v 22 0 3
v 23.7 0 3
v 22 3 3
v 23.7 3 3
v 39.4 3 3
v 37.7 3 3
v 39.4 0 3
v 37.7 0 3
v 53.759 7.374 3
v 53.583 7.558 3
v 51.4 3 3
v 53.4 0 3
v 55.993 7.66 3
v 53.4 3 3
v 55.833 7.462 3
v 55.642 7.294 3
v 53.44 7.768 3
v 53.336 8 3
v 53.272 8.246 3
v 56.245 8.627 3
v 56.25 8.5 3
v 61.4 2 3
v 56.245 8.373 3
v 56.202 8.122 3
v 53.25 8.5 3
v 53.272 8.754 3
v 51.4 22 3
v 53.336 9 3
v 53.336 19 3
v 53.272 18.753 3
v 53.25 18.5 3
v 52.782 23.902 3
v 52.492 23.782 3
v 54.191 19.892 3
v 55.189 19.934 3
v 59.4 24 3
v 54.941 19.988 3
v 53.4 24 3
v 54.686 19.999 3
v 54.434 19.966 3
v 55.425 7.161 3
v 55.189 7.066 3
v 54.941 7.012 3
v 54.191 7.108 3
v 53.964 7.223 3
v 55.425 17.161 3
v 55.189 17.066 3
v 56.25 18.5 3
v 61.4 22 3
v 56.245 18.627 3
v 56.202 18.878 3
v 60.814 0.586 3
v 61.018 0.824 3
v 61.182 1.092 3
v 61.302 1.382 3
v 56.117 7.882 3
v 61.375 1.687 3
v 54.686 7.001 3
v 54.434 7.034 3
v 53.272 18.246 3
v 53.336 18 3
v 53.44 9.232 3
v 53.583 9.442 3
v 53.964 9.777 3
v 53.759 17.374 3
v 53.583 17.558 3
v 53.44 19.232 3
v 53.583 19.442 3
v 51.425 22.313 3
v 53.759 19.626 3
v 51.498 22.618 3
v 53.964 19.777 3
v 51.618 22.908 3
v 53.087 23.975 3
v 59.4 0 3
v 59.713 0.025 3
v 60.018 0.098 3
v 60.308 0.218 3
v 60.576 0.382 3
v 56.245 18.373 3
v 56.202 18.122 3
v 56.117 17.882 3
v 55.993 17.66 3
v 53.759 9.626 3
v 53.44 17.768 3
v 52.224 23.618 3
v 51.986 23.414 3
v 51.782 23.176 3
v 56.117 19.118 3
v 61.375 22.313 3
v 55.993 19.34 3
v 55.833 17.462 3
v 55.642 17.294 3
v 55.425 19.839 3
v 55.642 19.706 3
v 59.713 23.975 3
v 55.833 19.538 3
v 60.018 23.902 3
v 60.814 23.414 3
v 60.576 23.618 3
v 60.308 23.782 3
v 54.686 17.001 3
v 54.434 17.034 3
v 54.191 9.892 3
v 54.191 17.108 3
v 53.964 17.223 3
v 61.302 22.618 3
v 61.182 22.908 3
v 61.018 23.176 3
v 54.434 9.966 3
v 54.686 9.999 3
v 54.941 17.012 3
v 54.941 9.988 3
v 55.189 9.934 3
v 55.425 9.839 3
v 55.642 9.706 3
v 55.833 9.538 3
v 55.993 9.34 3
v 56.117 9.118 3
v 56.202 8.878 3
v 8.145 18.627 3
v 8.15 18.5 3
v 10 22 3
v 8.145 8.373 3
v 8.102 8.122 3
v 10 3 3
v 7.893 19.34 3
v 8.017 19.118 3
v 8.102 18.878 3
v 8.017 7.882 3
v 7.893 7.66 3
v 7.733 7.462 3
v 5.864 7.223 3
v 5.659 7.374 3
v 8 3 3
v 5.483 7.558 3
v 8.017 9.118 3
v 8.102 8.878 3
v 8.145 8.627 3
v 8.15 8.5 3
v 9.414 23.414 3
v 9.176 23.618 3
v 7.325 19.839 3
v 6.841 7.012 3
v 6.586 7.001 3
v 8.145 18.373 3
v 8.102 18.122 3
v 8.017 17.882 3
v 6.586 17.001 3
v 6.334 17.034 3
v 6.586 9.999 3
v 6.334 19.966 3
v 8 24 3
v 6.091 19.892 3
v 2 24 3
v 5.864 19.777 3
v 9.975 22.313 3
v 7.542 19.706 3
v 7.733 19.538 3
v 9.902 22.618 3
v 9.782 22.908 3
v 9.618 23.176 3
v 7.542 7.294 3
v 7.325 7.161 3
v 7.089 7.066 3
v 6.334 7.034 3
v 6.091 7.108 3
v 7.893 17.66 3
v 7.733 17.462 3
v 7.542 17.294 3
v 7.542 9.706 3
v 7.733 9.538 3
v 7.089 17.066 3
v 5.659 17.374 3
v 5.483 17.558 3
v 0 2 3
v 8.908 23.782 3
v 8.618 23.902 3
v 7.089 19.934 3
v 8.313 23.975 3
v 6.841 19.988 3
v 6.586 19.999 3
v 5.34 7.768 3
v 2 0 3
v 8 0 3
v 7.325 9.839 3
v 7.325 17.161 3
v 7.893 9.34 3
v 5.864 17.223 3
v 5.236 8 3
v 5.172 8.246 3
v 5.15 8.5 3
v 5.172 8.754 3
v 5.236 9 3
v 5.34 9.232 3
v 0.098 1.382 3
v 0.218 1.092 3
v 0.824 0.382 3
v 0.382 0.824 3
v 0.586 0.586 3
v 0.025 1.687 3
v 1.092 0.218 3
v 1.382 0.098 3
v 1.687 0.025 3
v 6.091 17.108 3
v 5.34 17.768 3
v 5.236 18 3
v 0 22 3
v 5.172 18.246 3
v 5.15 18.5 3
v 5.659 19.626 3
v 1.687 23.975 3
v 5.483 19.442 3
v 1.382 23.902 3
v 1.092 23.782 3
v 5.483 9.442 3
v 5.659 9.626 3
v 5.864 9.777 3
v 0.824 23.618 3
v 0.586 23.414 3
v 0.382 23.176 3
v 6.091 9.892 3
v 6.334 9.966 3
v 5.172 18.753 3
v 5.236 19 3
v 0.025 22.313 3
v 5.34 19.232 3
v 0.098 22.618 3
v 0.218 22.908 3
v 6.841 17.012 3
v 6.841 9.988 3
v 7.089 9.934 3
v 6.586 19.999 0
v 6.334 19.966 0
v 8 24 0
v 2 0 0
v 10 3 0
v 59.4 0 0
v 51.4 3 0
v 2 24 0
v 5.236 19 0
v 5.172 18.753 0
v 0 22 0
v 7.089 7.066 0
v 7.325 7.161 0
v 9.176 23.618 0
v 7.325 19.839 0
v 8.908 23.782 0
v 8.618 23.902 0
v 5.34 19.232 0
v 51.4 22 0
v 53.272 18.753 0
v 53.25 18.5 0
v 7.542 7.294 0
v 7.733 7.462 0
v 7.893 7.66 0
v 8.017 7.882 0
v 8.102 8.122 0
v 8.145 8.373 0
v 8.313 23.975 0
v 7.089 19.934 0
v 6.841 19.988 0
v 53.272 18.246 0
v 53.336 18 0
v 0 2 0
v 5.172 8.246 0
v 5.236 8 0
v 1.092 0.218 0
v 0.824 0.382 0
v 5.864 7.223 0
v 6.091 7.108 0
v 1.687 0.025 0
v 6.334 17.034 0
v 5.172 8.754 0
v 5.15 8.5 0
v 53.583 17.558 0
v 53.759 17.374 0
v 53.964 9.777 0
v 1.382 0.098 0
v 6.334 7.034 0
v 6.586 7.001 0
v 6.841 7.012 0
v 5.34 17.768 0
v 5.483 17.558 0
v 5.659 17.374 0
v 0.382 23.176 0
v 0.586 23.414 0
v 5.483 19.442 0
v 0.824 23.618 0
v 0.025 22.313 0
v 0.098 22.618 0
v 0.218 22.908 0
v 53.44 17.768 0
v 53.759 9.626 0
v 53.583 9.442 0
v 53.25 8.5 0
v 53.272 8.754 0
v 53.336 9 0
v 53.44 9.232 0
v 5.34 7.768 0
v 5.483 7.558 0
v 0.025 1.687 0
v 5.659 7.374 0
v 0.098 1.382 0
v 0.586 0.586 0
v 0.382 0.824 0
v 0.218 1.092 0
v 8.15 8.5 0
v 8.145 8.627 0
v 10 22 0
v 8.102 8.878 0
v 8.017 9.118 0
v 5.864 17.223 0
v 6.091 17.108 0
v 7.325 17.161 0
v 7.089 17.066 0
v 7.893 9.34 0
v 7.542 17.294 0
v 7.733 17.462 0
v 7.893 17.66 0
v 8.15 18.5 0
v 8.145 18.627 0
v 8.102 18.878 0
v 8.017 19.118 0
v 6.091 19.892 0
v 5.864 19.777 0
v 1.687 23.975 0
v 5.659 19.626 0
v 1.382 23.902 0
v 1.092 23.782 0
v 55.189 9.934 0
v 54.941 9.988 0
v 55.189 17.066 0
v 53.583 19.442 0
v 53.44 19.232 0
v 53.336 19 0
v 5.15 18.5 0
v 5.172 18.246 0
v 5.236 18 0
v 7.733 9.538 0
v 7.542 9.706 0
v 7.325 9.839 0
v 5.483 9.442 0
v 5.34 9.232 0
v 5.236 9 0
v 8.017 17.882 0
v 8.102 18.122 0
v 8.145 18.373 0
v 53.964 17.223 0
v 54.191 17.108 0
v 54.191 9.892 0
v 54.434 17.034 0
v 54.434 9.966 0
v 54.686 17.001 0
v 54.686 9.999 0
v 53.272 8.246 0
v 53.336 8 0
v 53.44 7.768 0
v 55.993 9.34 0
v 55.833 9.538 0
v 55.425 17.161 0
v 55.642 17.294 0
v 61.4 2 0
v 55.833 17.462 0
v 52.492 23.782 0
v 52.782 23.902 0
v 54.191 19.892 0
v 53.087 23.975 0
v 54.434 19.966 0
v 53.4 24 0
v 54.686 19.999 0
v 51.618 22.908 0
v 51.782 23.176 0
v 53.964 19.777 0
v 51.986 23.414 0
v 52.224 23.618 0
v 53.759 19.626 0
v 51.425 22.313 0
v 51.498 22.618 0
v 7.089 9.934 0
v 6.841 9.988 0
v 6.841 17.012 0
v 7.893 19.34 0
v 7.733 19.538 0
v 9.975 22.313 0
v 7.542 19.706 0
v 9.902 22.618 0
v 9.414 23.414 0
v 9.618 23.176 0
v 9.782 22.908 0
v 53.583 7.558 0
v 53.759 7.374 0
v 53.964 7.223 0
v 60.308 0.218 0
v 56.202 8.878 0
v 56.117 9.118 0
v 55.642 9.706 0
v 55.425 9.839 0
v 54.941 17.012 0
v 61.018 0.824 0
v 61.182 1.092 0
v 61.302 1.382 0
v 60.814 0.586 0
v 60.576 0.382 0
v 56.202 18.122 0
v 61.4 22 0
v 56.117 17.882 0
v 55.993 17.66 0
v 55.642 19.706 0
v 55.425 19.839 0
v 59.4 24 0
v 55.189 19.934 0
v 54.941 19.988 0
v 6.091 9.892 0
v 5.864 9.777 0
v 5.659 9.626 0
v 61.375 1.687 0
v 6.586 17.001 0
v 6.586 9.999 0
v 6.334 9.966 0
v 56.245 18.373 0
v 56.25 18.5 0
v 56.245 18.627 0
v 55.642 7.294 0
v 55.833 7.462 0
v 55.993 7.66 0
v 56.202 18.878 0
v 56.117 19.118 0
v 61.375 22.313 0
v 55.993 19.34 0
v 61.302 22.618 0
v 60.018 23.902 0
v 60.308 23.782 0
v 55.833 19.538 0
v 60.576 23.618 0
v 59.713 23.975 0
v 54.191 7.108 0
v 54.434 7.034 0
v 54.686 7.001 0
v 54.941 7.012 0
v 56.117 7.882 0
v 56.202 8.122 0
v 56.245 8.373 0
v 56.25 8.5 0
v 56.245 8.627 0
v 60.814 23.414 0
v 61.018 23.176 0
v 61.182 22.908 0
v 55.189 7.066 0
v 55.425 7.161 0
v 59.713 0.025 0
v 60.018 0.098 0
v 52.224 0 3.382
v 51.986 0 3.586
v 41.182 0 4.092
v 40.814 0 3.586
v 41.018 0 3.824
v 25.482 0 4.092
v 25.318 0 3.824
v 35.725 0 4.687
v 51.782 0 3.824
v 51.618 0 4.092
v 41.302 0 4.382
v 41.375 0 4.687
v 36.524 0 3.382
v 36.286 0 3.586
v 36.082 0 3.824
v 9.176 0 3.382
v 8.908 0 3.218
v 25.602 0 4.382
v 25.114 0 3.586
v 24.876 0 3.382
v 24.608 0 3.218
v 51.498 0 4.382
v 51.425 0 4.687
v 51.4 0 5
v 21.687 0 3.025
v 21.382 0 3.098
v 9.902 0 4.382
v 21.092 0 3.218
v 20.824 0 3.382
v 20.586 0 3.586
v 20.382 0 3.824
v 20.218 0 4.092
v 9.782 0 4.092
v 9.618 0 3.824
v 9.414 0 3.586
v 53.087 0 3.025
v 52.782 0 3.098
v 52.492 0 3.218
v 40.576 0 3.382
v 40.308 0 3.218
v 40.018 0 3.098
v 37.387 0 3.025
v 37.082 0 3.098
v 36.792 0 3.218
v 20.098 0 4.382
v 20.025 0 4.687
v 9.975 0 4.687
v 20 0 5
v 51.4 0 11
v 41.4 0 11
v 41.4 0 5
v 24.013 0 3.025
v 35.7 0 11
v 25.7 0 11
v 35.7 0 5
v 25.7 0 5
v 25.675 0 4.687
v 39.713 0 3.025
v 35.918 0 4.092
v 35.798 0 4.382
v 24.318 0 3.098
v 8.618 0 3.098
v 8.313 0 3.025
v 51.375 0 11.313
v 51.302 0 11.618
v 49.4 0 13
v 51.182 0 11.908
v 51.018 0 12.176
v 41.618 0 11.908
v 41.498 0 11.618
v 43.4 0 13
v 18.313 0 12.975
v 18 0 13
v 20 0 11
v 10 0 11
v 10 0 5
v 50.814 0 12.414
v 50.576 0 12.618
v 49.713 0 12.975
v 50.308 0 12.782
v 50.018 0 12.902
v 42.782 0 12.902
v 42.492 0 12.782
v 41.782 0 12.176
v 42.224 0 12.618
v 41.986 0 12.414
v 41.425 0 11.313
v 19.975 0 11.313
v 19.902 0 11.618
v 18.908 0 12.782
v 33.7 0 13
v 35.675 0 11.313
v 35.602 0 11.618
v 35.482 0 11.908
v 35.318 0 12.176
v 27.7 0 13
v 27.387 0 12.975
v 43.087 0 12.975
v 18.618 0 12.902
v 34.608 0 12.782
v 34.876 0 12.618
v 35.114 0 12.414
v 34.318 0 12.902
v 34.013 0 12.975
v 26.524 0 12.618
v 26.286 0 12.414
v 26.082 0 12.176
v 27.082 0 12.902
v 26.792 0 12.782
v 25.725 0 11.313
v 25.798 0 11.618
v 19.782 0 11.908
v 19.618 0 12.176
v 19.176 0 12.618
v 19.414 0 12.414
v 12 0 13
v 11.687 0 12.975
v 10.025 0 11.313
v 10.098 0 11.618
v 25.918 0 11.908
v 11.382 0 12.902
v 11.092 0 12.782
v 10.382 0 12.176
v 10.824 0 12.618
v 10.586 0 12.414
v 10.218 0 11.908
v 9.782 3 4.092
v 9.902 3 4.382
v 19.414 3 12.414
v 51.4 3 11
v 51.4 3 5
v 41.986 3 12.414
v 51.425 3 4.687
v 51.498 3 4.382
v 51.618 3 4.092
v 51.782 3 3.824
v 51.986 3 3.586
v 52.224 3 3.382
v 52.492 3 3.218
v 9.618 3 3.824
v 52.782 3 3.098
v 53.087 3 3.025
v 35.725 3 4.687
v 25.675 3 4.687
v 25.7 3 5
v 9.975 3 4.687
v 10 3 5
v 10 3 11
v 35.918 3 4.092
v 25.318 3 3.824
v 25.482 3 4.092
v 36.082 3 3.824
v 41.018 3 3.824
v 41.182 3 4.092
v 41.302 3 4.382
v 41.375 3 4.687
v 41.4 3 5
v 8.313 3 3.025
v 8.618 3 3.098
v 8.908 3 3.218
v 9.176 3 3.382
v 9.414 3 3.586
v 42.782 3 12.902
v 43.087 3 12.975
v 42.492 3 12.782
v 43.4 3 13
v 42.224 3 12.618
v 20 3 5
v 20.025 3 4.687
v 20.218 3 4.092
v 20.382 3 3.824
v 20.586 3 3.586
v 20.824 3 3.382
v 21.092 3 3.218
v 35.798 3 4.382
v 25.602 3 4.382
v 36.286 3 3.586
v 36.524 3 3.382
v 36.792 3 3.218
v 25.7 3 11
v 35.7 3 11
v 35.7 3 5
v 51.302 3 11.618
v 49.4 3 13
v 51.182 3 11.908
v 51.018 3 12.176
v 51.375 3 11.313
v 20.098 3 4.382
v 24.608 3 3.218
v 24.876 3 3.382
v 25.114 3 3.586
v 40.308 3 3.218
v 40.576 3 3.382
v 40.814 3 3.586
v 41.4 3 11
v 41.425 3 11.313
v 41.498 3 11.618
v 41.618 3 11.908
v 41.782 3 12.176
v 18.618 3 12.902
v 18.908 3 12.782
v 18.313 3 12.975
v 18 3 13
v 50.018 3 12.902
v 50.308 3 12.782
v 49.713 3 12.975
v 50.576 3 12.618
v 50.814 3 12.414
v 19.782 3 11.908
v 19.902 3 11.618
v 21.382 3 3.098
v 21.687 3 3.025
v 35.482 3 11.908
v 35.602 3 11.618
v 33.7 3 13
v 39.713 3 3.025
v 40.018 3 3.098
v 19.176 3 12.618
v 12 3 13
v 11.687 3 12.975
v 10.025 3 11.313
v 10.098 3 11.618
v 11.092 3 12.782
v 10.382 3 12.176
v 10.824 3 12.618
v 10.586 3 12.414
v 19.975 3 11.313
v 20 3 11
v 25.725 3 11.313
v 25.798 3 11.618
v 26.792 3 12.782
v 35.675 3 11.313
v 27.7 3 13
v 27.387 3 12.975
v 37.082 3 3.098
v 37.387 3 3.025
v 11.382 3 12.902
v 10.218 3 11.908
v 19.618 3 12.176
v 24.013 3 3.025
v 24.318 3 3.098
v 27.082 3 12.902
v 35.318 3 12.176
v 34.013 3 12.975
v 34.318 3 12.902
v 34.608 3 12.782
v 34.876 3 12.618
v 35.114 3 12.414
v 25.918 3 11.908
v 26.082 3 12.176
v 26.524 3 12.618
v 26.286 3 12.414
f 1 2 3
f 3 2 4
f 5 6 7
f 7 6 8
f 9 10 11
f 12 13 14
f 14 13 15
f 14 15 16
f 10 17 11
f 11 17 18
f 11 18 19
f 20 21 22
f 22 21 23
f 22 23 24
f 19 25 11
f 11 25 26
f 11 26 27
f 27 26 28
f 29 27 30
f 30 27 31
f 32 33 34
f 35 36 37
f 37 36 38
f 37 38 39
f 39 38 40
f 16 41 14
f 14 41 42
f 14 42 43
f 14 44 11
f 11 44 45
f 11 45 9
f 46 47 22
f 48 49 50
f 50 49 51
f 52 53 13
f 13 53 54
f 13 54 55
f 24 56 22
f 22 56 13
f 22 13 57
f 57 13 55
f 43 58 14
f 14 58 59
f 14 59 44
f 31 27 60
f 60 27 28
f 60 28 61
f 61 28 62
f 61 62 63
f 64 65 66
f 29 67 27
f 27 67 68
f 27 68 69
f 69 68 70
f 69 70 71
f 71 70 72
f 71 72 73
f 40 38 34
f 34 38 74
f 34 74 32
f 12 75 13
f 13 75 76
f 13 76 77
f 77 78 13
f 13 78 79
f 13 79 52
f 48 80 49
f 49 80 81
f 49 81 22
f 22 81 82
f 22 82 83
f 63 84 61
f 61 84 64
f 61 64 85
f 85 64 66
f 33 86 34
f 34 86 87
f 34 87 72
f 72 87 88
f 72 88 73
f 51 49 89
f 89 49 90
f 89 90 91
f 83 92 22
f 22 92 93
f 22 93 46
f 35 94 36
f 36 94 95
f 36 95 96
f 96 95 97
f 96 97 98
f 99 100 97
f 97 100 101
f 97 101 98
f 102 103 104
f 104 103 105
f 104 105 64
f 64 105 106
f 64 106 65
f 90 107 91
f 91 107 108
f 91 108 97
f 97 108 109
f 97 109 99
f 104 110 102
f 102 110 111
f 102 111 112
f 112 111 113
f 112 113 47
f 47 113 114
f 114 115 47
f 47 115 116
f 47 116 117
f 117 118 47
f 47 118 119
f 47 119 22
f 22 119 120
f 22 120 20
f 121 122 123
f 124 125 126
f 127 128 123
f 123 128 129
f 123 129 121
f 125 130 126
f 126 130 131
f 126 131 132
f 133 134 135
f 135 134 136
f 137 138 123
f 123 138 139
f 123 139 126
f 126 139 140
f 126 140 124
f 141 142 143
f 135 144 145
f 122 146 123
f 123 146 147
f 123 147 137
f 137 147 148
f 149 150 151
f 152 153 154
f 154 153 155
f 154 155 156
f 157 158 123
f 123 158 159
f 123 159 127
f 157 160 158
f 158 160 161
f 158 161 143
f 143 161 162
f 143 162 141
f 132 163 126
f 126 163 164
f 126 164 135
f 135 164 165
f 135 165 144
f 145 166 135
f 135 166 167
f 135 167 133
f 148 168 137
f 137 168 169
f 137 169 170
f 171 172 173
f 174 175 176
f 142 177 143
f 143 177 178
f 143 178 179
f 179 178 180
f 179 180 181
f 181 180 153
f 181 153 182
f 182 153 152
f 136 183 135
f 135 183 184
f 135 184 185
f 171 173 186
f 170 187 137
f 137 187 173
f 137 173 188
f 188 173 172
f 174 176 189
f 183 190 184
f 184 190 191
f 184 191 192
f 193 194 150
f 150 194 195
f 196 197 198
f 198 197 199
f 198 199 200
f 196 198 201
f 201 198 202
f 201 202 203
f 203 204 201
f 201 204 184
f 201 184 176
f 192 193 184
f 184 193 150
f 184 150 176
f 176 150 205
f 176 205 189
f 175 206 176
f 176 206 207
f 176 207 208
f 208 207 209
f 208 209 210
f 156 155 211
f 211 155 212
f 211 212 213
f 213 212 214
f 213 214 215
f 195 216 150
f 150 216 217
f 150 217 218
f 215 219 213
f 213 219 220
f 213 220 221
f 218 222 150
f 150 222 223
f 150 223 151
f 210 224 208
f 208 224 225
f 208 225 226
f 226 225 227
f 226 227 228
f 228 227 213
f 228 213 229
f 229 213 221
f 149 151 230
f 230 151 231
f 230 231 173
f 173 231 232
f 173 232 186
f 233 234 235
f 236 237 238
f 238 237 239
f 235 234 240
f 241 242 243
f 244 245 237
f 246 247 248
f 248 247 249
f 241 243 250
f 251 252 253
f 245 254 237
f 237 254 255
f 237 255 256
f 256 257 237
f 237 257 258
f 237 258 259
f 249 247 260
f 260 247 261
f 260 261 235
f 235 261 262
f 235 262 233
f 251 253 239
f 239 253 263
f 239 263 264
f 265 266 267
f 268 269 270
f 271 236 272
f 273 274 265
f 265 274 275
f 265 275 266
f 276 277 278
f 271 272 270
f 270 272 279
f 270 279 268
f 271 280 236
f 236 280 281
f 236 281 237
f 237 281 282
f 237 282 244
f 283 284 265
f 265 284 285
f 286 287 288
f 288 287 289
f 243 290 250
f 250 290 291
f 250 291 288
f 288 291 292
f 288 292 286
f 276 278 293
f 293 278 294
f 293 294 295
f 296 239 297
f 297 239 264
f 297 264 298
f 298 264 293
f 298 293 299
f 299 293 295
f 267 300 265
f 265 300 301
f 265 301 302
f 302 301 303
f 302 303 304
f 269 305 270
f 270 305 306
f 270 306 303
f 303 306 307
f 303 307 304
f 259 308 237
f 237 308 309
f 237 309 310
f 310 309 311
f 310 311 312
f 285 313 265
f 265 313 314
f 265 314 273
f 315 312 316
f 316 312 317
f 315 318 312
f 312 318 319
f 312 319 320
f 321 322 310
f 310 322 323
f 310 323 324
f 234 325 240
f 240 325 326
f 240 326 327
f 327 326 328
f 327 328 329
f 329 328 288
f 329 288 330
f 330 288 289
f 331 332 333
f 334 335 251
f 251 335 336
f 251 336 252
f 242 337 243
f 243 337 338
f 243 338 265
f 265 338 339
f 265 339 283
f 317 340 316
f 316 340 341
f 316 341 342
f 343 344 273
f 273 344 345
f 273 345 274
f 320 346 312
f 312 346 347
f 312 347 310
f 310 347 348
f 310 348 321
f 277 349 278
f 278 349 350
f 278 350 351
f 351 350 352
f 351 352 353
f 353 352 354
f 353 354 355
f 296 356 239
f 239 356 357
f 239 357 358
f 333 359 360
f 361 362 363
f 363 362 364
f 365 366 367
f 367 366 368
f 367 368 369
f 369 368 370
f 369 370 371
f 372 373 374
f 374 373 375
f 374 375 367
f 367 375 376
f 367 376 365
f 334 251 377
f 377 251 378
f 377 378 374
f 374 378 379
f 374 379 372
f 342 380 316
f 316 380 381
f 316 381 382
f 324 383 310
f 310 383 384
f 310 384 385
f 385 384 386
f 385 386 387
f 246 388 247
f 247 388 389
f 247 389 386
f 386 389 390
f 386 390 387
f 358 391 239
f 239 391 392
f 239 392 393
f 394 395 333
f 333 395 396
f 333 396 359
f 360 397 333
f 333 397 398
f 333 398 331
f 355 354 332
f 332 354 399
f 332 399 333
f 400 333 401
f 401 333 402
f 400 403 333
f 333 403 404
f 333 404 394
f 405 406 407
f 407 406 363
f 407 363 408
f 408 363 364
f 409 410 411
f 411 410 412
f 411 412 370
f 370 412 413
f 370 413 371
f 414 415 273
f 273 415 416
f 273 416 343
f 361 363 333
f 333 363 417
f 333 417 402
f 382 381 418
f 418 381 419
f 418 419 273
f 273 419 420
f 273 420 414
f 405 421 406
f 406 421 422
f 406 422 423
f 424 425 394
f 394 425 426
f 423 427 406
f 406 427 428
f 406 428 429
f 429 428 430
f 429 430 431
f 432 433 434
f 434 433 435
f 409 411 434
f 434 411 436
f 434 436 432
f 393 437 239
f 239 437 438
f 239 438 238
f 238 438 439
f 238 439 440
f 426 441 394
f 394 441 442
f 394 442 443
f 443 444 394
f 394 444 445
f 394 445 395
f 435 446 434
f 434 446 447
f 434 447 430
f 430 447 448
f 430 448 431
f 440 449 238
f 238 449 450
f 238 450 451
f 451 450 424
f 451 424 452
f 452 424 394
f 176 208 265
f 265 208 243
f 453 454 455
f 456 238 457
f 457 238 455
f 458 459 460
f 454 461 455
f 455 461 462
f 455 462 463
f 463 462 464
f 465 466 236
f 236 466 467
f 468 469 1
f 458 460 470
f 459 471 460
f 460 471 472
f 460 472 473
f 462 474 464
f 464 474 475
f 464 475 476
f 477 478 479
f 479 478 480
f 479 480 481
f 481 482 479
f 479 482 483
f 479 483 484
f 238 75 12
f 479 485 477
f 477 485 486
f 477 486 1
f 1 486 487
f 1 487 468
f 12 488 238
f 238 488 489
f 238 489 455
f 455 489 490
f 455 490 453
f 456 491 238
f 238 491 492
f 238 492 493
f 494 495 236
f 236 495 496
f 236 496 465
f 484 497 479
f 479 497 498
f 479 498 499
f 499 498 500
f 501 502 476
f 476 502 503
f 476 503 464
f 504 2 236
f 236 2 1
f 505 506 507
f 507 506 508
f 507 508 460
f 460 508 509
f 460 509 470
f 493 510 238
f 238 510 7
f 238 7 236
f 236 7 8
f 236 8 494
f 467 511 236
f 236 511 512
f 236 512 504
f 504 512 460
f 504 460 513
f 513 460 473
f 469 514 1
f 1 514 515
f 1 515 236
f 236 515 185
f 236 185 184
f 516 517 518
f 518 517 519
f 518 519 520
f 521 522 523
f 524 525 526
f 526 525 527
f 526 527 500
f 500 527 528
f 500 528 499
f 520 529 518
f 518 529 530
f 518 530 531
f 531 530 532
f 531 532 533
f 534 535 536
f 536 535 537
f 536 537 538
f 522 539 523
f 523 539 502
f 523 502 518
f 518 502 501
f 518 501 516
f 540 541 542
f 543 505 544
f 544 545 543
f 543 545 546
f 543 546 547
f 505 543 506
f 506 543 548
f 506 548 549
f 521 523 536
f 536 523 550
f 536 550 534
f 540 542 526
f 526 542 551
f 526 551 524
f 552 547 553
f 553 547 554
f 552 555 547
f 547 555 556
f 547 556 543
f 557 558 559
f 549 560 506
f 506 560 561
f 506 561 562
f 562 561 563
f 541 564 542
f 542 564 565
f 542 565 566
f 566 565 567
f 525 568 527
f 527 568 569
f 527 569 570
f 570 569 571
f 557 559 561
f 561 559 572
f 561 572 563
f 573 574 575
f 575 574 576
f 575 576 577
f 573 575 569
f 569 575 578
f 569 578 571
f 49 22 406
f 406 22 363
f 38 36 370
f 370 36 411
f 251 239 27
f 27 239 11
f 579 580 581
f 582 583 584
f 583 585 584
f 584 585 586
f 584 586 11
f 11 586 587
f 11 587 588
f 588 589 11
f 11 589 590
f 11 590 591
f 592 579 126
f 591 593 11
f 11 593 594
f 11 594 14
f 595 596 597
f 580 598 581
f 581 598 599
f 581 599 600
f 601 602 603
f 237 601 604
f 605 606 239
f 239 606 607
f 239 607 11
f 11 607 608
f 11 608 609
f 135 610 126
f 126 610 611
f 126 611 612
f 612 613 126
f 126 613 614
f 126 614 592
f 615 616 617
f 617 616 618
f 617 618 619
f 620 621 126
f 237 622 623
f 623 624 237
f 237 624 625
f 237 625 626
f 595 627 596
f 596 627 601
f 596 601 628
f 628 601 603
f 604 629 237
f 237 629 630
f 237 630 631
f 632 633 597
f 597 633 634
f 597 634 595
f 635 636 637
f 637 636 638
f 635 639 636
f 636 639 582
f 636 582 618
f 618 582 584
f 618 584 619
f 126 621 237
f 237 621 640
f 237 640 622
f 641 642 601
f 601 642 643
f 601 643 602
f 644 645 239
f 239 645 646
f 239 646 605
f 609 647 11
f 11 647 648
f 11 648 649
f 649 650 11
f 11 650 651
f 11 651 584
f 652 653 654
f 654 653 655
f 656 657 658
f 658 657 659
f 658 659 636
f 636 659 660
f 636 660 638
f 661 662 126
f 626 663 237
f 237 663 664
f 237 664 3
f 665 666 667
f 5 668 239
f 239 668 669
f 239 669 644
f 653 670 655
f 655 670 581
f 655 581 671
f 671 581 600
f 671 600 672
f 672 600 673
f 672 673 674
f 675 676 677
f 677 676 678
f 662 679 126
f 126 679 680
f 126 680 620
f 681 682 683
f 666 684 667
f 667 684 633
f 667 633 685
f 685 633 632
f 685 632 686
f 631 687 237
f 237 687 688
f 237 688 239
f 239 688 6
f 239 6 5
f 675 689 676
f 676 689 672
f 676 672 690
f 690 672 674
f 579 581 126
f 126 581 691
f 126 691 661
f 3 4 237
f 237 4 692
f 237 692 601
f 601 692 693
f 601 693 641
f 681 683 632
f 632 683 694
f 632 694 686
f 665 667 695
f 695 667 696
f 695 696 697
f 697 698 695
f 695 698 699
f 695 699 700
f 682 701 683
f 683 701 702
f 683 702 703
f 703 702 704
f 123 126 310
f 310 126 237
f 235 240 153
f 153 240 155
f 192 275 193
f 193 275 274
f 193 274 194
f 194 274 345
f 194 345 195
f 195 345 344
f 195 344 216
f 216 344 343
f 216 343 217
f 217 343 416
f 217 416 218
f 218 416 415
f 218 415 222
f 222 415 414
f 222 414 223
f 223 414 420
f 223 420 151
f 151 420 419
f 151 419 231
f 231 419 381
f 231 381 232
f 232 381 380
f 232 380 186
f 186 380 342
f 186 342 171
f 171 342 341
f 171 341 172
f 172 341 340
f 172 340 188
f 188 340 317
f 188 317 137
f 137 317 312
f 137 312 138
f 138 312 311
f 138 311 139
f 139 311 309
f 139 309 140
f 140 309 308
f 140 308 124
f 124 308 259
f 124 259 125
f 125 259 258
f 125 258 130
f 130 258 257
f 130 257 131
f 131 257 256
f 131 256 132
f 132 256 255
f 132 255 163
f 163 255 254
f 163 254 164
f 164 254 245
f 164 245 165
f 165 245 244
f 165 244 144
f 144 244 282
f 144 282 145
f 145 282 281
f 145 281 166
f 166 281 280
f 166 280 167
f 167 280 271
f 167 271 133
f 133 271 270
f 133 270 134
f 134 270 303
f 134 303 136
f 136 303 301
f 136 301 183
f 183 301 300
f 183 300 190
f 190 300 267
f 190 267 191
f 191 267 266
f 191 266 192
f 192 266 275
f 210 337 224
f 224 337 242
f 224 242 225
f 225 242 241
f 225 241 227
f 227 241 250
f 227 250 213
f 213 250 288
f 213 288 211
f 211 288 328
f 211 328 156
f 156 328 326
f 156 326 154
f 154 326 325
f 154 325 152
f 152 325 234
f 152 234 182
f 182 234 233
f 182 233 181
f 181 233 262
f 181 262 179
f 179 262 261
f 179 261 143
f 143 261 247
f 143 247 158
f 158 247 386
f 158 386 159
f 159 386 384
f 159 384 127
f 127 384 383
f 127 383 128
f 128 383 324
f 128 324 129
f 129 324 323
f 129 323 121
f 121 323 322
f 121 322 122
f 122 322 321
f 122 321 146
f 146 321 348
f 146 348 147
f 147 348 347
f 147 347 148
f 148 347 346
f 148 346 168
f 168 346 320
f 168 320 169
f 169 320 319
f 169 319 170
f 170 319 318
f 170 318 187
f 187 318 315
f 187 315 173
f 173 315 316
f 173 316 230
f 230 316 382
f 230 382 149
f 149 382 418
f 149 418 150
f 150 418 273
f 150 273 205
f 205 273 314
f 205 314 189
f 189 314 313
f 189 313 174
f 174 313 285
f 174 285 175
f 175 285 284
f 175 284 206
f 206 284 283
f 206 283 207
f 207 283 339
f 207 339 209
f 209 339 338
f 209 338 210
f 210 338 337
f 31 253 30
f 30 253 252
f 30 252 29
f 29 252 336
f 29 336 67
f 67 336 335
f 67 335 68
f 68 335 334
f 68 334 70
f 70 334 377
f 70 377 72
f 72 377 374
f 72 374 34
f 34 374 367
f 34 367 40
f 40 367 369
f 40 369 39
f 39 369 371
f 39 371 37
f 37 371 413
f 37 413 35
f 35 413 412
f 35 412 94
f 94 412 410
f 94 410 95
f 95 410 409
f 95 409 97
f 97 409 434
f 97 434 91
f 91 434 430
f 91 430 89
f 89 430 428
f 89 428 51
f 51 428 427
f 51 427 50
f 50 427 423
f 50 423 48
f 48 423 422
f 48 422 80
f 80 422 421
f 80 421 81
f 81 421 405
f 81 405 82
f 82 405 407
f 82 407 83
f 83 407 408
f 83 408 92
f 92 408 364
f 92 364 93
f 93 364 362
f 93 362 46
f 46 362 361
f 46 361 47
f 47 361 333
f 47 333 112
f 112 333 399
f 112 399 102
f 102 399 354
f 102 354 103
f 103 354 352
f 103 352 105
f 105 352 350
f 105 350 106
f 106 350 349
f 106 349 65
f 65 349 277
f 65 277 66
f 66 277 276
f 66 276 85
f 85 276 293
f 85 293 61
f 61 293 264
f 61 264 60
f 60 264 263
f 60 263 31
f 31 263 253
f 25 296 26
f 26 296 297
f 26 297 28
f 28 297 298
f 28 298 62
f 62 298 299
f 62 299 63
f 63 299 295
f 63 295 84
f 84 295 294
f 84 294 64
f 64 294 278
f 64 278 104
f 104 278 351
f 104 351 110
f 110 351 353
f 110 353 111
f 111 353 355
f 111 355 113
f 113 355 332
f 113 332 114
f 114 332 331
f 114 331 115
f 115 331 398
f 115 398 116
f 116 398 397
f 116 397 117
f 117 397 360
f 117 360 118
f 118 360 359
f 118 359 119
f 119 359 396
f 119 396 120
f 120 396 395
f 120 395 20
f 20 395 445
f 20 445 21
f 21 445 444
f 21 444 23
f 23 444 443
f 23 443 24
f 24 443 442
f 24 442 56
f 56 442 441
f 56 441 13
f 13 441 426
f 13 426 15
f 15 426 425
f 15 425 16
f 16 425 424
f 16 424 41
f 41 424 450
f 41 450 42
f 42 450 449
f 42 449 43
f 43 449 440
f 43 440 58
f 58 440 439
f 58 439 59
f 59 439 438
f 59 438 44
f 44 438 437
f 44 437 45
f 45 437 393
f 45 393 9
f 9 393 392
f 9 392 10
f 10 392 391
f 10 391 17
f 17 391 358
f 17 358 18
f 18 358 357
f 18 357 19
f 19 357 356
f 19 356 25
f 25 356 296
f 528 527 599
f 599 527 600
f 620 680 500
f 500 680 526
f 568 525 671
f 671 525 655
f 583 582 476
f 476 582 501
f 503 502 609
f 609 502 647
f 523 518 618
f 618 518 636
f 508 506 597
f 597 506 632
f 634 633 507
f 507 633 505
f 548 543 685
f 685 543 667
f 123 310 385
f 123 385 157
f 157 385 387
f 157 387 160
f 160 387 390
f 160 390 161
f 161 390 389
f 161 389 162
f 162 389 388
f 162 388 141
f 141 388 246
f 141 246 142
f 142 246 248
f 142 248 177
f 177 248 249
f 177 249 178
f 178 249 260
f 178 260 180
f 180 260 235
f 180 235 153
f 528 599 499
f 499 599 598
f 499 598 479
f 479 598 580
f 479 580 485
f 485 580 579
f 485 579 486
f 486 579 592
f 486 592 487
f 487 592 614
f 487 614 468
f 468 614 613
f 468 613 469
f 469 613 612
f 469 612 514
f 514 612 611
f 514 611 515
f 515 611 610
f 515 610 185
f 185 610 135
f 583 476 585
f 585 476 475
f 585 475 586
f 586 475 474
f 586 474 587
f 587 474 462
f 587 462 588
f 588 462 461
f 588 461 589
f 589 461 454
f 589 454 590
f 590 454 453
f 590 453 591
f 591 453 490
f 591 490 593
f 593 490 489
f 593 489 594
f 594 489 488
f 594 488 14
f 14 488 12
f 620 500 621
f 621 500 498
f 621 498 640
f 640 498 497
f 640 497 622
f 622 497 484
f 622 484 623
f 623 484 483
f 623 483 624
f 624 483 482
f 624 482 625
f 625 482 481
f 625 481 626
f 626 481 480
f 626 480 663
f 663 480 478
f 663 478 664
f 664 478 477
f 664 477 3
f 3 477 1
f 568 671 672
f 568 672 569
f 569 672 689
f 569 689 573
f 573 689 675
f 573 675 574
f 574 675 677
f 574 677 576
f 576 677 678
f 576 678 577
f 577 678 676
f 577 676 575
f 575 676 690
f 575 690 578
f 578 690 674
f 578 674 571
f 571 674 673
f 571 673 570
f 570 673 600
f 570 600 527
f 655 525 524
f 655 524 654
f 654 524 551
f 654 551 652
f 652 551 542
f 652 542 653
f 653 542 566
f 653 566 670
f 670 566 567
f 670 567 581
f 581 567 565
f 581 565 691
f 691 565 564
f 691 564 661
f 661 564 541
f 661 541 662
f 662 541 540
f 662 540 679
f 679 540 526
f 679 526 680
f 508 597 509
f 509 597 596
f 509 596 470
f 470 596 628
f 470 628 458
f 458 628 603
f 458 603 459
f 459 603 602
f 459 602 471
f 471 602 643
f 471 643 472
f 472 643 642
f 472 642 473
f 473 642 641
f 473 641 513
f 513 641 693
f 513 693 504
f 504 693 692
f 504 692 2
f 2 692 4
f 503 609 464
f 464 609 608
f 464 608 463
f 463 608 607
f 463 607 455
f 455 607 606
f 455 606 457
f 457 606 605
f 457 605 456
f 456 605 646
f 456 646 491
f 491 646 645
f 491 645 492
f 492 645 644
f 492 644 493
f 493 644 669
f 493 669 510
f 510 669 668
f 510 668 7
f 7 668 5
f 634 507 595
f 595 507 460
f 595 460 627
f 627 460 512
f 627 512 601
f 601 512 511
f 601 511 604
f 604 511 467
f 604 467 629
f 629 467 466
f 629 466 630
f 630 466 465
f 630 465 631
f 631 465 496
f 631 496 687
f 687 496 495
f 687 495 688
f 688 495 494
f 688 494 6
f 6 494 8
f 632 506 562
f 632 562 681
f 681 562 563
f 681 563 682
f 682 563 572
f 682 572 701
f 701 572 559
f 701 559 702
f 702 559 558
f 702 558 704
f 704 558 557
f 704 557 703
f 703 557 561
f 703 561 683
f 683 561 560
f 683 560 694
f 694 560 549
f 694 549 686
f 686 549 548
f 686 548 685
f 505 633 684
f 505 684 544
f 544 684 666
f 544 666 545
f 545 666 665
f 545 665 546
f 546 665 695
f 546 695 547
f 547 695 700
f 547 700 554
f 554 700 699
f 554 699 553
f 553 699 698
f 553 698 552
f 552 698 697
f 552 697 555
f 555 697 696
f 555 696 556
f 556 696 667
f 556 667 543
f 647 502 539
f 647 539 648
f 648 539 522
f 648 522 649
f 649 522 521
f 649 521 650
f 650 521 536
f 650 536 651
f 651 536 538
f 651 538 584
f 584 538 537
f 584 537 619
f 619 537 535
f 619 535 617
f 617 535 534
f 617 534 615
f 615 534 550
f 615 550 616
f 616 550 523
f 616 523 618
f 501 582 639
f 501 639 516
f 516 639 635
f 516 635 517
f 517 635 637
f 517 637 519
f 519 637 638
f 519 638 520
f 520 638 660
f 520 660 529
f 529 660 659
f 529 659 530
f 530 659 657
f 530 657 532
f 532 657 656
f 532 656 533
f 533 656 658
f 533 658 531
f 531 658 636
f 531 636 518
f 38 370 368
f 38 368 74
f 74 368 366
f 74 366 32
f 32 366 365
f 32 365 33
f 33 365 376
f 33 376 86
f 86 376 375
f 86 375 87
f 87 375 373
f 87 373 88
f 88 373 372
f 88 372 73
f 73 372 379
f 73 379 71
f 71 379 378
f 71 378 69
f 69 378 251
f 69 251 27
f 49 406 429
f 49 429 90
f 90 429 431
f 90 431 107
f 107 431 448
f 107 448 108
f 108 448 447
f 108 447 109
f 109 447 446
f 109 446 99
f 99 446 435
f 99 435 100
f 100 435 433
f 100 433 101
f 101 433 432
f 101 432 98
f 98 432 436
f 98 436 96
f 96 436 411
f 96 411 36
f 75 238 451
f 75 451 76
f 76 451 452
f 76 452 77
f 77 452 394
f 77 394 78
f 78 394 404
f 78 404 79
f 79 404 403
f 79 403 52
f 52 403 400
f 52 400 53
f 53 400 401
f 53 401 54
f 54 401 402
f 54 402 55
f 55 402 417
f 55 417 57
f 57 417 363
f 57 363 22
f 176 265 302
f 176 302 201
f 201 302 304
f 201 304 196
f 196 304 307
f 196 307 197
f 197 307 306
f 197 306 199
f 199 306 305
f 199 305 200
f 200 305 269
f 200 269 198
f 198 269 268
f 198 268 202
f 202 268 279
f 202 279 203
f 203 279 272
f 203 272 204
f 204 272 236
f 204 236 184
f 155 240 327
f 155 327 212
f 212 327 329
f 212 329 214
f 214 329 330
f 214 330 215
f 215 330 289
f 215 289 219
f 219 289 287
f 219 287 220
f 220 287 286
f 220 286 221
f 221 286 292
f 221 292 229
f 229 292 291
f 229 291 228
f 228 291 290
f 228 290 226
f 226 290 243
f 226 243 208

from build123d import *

# Parameters (mm, degrees)
SKETCH1_R           = 1.5
BOSS_EXTRUDE1_DEPTH = 3
SKETCH2_W           = 10
SKETCH2_H           = 3
BOSS_EXTRUDE2_DEPTH = 10
FILLET1_R           = 2


with BuildPart() as part:
    # Sketch1 → Boss-Extrude1 (new body)
    with BuildSketch(Plane.XY):
        Polygon((10, 24), (10, 3), (51.4, 3), (51.4, 24), (61.4, 24), (61.4, 0), (0, 0), (0, 24), align=None)
        with Locations((6.65, 8.5)):
            Circle(SKETCH1_R, mode=Mode.SUBTRACT)
        with Locations((6.65, 18.5)):
            Circle(SKETCH1_R, mode=Mode.SUBTRACT)
        with Locations((54.75, 18.5)):
            Circle(SKETCH1_R, mode=Mode.SUBTRACT)
        with Locations((54.75, 8.5)):
            Circle(SKETCH1_R, mode=Mode.SUBTRACT)
    extrude(amount=BOSS_EXTRUDE1_DEPTH)

    # Sketch2 → Boss-Extrude2 (add)
    with BuildSketch(Plane.XY.offset(3)):
        with Locations((15, 1.5)):
            Rectangle(SKETCH2_W, SKETCH2_H)
        with Locations((46.4, 1.5)):
            Rectangle(SKETCH2_W, SKETCH2_H)
        with Locations((30.7, 1.5)):
            Rectangle(SKETCH2_W, SKETCH2_H)
    extrude(amount=BOSS_EXTRUDE2_DEPTH)

    # Fillet1
    fillet1_edges = [part.edges().sort_by_distance(p)[0] for p in [
        (10, 1.5, 3),
        (51.4, 1.5, 3),
        (20, 1.5, 3),
        (10, 1.5, 13),
        (20, 1.5, 13),
        (25.7, 1.5, 3),
        (41.4, 1.5, 3),
        (35.7, 1.5, 3),
        (25.7, 1.5, 13),
        (35.7, 1.5, 13),
        (41.4, 1.5, 13),
        (51.4, 1.5, 13),
        (51.4, 24, 1.5),
        (61.4, 24, 1.5),
        (61.4, 0, 1.5),
        (0, 0, 1.5),
        (0, 24, 1.5),
        (10, 24, 1.5),
    ]]
    fillet(fillet1_edges, radius=FILLET1_R)


solid = part.part
